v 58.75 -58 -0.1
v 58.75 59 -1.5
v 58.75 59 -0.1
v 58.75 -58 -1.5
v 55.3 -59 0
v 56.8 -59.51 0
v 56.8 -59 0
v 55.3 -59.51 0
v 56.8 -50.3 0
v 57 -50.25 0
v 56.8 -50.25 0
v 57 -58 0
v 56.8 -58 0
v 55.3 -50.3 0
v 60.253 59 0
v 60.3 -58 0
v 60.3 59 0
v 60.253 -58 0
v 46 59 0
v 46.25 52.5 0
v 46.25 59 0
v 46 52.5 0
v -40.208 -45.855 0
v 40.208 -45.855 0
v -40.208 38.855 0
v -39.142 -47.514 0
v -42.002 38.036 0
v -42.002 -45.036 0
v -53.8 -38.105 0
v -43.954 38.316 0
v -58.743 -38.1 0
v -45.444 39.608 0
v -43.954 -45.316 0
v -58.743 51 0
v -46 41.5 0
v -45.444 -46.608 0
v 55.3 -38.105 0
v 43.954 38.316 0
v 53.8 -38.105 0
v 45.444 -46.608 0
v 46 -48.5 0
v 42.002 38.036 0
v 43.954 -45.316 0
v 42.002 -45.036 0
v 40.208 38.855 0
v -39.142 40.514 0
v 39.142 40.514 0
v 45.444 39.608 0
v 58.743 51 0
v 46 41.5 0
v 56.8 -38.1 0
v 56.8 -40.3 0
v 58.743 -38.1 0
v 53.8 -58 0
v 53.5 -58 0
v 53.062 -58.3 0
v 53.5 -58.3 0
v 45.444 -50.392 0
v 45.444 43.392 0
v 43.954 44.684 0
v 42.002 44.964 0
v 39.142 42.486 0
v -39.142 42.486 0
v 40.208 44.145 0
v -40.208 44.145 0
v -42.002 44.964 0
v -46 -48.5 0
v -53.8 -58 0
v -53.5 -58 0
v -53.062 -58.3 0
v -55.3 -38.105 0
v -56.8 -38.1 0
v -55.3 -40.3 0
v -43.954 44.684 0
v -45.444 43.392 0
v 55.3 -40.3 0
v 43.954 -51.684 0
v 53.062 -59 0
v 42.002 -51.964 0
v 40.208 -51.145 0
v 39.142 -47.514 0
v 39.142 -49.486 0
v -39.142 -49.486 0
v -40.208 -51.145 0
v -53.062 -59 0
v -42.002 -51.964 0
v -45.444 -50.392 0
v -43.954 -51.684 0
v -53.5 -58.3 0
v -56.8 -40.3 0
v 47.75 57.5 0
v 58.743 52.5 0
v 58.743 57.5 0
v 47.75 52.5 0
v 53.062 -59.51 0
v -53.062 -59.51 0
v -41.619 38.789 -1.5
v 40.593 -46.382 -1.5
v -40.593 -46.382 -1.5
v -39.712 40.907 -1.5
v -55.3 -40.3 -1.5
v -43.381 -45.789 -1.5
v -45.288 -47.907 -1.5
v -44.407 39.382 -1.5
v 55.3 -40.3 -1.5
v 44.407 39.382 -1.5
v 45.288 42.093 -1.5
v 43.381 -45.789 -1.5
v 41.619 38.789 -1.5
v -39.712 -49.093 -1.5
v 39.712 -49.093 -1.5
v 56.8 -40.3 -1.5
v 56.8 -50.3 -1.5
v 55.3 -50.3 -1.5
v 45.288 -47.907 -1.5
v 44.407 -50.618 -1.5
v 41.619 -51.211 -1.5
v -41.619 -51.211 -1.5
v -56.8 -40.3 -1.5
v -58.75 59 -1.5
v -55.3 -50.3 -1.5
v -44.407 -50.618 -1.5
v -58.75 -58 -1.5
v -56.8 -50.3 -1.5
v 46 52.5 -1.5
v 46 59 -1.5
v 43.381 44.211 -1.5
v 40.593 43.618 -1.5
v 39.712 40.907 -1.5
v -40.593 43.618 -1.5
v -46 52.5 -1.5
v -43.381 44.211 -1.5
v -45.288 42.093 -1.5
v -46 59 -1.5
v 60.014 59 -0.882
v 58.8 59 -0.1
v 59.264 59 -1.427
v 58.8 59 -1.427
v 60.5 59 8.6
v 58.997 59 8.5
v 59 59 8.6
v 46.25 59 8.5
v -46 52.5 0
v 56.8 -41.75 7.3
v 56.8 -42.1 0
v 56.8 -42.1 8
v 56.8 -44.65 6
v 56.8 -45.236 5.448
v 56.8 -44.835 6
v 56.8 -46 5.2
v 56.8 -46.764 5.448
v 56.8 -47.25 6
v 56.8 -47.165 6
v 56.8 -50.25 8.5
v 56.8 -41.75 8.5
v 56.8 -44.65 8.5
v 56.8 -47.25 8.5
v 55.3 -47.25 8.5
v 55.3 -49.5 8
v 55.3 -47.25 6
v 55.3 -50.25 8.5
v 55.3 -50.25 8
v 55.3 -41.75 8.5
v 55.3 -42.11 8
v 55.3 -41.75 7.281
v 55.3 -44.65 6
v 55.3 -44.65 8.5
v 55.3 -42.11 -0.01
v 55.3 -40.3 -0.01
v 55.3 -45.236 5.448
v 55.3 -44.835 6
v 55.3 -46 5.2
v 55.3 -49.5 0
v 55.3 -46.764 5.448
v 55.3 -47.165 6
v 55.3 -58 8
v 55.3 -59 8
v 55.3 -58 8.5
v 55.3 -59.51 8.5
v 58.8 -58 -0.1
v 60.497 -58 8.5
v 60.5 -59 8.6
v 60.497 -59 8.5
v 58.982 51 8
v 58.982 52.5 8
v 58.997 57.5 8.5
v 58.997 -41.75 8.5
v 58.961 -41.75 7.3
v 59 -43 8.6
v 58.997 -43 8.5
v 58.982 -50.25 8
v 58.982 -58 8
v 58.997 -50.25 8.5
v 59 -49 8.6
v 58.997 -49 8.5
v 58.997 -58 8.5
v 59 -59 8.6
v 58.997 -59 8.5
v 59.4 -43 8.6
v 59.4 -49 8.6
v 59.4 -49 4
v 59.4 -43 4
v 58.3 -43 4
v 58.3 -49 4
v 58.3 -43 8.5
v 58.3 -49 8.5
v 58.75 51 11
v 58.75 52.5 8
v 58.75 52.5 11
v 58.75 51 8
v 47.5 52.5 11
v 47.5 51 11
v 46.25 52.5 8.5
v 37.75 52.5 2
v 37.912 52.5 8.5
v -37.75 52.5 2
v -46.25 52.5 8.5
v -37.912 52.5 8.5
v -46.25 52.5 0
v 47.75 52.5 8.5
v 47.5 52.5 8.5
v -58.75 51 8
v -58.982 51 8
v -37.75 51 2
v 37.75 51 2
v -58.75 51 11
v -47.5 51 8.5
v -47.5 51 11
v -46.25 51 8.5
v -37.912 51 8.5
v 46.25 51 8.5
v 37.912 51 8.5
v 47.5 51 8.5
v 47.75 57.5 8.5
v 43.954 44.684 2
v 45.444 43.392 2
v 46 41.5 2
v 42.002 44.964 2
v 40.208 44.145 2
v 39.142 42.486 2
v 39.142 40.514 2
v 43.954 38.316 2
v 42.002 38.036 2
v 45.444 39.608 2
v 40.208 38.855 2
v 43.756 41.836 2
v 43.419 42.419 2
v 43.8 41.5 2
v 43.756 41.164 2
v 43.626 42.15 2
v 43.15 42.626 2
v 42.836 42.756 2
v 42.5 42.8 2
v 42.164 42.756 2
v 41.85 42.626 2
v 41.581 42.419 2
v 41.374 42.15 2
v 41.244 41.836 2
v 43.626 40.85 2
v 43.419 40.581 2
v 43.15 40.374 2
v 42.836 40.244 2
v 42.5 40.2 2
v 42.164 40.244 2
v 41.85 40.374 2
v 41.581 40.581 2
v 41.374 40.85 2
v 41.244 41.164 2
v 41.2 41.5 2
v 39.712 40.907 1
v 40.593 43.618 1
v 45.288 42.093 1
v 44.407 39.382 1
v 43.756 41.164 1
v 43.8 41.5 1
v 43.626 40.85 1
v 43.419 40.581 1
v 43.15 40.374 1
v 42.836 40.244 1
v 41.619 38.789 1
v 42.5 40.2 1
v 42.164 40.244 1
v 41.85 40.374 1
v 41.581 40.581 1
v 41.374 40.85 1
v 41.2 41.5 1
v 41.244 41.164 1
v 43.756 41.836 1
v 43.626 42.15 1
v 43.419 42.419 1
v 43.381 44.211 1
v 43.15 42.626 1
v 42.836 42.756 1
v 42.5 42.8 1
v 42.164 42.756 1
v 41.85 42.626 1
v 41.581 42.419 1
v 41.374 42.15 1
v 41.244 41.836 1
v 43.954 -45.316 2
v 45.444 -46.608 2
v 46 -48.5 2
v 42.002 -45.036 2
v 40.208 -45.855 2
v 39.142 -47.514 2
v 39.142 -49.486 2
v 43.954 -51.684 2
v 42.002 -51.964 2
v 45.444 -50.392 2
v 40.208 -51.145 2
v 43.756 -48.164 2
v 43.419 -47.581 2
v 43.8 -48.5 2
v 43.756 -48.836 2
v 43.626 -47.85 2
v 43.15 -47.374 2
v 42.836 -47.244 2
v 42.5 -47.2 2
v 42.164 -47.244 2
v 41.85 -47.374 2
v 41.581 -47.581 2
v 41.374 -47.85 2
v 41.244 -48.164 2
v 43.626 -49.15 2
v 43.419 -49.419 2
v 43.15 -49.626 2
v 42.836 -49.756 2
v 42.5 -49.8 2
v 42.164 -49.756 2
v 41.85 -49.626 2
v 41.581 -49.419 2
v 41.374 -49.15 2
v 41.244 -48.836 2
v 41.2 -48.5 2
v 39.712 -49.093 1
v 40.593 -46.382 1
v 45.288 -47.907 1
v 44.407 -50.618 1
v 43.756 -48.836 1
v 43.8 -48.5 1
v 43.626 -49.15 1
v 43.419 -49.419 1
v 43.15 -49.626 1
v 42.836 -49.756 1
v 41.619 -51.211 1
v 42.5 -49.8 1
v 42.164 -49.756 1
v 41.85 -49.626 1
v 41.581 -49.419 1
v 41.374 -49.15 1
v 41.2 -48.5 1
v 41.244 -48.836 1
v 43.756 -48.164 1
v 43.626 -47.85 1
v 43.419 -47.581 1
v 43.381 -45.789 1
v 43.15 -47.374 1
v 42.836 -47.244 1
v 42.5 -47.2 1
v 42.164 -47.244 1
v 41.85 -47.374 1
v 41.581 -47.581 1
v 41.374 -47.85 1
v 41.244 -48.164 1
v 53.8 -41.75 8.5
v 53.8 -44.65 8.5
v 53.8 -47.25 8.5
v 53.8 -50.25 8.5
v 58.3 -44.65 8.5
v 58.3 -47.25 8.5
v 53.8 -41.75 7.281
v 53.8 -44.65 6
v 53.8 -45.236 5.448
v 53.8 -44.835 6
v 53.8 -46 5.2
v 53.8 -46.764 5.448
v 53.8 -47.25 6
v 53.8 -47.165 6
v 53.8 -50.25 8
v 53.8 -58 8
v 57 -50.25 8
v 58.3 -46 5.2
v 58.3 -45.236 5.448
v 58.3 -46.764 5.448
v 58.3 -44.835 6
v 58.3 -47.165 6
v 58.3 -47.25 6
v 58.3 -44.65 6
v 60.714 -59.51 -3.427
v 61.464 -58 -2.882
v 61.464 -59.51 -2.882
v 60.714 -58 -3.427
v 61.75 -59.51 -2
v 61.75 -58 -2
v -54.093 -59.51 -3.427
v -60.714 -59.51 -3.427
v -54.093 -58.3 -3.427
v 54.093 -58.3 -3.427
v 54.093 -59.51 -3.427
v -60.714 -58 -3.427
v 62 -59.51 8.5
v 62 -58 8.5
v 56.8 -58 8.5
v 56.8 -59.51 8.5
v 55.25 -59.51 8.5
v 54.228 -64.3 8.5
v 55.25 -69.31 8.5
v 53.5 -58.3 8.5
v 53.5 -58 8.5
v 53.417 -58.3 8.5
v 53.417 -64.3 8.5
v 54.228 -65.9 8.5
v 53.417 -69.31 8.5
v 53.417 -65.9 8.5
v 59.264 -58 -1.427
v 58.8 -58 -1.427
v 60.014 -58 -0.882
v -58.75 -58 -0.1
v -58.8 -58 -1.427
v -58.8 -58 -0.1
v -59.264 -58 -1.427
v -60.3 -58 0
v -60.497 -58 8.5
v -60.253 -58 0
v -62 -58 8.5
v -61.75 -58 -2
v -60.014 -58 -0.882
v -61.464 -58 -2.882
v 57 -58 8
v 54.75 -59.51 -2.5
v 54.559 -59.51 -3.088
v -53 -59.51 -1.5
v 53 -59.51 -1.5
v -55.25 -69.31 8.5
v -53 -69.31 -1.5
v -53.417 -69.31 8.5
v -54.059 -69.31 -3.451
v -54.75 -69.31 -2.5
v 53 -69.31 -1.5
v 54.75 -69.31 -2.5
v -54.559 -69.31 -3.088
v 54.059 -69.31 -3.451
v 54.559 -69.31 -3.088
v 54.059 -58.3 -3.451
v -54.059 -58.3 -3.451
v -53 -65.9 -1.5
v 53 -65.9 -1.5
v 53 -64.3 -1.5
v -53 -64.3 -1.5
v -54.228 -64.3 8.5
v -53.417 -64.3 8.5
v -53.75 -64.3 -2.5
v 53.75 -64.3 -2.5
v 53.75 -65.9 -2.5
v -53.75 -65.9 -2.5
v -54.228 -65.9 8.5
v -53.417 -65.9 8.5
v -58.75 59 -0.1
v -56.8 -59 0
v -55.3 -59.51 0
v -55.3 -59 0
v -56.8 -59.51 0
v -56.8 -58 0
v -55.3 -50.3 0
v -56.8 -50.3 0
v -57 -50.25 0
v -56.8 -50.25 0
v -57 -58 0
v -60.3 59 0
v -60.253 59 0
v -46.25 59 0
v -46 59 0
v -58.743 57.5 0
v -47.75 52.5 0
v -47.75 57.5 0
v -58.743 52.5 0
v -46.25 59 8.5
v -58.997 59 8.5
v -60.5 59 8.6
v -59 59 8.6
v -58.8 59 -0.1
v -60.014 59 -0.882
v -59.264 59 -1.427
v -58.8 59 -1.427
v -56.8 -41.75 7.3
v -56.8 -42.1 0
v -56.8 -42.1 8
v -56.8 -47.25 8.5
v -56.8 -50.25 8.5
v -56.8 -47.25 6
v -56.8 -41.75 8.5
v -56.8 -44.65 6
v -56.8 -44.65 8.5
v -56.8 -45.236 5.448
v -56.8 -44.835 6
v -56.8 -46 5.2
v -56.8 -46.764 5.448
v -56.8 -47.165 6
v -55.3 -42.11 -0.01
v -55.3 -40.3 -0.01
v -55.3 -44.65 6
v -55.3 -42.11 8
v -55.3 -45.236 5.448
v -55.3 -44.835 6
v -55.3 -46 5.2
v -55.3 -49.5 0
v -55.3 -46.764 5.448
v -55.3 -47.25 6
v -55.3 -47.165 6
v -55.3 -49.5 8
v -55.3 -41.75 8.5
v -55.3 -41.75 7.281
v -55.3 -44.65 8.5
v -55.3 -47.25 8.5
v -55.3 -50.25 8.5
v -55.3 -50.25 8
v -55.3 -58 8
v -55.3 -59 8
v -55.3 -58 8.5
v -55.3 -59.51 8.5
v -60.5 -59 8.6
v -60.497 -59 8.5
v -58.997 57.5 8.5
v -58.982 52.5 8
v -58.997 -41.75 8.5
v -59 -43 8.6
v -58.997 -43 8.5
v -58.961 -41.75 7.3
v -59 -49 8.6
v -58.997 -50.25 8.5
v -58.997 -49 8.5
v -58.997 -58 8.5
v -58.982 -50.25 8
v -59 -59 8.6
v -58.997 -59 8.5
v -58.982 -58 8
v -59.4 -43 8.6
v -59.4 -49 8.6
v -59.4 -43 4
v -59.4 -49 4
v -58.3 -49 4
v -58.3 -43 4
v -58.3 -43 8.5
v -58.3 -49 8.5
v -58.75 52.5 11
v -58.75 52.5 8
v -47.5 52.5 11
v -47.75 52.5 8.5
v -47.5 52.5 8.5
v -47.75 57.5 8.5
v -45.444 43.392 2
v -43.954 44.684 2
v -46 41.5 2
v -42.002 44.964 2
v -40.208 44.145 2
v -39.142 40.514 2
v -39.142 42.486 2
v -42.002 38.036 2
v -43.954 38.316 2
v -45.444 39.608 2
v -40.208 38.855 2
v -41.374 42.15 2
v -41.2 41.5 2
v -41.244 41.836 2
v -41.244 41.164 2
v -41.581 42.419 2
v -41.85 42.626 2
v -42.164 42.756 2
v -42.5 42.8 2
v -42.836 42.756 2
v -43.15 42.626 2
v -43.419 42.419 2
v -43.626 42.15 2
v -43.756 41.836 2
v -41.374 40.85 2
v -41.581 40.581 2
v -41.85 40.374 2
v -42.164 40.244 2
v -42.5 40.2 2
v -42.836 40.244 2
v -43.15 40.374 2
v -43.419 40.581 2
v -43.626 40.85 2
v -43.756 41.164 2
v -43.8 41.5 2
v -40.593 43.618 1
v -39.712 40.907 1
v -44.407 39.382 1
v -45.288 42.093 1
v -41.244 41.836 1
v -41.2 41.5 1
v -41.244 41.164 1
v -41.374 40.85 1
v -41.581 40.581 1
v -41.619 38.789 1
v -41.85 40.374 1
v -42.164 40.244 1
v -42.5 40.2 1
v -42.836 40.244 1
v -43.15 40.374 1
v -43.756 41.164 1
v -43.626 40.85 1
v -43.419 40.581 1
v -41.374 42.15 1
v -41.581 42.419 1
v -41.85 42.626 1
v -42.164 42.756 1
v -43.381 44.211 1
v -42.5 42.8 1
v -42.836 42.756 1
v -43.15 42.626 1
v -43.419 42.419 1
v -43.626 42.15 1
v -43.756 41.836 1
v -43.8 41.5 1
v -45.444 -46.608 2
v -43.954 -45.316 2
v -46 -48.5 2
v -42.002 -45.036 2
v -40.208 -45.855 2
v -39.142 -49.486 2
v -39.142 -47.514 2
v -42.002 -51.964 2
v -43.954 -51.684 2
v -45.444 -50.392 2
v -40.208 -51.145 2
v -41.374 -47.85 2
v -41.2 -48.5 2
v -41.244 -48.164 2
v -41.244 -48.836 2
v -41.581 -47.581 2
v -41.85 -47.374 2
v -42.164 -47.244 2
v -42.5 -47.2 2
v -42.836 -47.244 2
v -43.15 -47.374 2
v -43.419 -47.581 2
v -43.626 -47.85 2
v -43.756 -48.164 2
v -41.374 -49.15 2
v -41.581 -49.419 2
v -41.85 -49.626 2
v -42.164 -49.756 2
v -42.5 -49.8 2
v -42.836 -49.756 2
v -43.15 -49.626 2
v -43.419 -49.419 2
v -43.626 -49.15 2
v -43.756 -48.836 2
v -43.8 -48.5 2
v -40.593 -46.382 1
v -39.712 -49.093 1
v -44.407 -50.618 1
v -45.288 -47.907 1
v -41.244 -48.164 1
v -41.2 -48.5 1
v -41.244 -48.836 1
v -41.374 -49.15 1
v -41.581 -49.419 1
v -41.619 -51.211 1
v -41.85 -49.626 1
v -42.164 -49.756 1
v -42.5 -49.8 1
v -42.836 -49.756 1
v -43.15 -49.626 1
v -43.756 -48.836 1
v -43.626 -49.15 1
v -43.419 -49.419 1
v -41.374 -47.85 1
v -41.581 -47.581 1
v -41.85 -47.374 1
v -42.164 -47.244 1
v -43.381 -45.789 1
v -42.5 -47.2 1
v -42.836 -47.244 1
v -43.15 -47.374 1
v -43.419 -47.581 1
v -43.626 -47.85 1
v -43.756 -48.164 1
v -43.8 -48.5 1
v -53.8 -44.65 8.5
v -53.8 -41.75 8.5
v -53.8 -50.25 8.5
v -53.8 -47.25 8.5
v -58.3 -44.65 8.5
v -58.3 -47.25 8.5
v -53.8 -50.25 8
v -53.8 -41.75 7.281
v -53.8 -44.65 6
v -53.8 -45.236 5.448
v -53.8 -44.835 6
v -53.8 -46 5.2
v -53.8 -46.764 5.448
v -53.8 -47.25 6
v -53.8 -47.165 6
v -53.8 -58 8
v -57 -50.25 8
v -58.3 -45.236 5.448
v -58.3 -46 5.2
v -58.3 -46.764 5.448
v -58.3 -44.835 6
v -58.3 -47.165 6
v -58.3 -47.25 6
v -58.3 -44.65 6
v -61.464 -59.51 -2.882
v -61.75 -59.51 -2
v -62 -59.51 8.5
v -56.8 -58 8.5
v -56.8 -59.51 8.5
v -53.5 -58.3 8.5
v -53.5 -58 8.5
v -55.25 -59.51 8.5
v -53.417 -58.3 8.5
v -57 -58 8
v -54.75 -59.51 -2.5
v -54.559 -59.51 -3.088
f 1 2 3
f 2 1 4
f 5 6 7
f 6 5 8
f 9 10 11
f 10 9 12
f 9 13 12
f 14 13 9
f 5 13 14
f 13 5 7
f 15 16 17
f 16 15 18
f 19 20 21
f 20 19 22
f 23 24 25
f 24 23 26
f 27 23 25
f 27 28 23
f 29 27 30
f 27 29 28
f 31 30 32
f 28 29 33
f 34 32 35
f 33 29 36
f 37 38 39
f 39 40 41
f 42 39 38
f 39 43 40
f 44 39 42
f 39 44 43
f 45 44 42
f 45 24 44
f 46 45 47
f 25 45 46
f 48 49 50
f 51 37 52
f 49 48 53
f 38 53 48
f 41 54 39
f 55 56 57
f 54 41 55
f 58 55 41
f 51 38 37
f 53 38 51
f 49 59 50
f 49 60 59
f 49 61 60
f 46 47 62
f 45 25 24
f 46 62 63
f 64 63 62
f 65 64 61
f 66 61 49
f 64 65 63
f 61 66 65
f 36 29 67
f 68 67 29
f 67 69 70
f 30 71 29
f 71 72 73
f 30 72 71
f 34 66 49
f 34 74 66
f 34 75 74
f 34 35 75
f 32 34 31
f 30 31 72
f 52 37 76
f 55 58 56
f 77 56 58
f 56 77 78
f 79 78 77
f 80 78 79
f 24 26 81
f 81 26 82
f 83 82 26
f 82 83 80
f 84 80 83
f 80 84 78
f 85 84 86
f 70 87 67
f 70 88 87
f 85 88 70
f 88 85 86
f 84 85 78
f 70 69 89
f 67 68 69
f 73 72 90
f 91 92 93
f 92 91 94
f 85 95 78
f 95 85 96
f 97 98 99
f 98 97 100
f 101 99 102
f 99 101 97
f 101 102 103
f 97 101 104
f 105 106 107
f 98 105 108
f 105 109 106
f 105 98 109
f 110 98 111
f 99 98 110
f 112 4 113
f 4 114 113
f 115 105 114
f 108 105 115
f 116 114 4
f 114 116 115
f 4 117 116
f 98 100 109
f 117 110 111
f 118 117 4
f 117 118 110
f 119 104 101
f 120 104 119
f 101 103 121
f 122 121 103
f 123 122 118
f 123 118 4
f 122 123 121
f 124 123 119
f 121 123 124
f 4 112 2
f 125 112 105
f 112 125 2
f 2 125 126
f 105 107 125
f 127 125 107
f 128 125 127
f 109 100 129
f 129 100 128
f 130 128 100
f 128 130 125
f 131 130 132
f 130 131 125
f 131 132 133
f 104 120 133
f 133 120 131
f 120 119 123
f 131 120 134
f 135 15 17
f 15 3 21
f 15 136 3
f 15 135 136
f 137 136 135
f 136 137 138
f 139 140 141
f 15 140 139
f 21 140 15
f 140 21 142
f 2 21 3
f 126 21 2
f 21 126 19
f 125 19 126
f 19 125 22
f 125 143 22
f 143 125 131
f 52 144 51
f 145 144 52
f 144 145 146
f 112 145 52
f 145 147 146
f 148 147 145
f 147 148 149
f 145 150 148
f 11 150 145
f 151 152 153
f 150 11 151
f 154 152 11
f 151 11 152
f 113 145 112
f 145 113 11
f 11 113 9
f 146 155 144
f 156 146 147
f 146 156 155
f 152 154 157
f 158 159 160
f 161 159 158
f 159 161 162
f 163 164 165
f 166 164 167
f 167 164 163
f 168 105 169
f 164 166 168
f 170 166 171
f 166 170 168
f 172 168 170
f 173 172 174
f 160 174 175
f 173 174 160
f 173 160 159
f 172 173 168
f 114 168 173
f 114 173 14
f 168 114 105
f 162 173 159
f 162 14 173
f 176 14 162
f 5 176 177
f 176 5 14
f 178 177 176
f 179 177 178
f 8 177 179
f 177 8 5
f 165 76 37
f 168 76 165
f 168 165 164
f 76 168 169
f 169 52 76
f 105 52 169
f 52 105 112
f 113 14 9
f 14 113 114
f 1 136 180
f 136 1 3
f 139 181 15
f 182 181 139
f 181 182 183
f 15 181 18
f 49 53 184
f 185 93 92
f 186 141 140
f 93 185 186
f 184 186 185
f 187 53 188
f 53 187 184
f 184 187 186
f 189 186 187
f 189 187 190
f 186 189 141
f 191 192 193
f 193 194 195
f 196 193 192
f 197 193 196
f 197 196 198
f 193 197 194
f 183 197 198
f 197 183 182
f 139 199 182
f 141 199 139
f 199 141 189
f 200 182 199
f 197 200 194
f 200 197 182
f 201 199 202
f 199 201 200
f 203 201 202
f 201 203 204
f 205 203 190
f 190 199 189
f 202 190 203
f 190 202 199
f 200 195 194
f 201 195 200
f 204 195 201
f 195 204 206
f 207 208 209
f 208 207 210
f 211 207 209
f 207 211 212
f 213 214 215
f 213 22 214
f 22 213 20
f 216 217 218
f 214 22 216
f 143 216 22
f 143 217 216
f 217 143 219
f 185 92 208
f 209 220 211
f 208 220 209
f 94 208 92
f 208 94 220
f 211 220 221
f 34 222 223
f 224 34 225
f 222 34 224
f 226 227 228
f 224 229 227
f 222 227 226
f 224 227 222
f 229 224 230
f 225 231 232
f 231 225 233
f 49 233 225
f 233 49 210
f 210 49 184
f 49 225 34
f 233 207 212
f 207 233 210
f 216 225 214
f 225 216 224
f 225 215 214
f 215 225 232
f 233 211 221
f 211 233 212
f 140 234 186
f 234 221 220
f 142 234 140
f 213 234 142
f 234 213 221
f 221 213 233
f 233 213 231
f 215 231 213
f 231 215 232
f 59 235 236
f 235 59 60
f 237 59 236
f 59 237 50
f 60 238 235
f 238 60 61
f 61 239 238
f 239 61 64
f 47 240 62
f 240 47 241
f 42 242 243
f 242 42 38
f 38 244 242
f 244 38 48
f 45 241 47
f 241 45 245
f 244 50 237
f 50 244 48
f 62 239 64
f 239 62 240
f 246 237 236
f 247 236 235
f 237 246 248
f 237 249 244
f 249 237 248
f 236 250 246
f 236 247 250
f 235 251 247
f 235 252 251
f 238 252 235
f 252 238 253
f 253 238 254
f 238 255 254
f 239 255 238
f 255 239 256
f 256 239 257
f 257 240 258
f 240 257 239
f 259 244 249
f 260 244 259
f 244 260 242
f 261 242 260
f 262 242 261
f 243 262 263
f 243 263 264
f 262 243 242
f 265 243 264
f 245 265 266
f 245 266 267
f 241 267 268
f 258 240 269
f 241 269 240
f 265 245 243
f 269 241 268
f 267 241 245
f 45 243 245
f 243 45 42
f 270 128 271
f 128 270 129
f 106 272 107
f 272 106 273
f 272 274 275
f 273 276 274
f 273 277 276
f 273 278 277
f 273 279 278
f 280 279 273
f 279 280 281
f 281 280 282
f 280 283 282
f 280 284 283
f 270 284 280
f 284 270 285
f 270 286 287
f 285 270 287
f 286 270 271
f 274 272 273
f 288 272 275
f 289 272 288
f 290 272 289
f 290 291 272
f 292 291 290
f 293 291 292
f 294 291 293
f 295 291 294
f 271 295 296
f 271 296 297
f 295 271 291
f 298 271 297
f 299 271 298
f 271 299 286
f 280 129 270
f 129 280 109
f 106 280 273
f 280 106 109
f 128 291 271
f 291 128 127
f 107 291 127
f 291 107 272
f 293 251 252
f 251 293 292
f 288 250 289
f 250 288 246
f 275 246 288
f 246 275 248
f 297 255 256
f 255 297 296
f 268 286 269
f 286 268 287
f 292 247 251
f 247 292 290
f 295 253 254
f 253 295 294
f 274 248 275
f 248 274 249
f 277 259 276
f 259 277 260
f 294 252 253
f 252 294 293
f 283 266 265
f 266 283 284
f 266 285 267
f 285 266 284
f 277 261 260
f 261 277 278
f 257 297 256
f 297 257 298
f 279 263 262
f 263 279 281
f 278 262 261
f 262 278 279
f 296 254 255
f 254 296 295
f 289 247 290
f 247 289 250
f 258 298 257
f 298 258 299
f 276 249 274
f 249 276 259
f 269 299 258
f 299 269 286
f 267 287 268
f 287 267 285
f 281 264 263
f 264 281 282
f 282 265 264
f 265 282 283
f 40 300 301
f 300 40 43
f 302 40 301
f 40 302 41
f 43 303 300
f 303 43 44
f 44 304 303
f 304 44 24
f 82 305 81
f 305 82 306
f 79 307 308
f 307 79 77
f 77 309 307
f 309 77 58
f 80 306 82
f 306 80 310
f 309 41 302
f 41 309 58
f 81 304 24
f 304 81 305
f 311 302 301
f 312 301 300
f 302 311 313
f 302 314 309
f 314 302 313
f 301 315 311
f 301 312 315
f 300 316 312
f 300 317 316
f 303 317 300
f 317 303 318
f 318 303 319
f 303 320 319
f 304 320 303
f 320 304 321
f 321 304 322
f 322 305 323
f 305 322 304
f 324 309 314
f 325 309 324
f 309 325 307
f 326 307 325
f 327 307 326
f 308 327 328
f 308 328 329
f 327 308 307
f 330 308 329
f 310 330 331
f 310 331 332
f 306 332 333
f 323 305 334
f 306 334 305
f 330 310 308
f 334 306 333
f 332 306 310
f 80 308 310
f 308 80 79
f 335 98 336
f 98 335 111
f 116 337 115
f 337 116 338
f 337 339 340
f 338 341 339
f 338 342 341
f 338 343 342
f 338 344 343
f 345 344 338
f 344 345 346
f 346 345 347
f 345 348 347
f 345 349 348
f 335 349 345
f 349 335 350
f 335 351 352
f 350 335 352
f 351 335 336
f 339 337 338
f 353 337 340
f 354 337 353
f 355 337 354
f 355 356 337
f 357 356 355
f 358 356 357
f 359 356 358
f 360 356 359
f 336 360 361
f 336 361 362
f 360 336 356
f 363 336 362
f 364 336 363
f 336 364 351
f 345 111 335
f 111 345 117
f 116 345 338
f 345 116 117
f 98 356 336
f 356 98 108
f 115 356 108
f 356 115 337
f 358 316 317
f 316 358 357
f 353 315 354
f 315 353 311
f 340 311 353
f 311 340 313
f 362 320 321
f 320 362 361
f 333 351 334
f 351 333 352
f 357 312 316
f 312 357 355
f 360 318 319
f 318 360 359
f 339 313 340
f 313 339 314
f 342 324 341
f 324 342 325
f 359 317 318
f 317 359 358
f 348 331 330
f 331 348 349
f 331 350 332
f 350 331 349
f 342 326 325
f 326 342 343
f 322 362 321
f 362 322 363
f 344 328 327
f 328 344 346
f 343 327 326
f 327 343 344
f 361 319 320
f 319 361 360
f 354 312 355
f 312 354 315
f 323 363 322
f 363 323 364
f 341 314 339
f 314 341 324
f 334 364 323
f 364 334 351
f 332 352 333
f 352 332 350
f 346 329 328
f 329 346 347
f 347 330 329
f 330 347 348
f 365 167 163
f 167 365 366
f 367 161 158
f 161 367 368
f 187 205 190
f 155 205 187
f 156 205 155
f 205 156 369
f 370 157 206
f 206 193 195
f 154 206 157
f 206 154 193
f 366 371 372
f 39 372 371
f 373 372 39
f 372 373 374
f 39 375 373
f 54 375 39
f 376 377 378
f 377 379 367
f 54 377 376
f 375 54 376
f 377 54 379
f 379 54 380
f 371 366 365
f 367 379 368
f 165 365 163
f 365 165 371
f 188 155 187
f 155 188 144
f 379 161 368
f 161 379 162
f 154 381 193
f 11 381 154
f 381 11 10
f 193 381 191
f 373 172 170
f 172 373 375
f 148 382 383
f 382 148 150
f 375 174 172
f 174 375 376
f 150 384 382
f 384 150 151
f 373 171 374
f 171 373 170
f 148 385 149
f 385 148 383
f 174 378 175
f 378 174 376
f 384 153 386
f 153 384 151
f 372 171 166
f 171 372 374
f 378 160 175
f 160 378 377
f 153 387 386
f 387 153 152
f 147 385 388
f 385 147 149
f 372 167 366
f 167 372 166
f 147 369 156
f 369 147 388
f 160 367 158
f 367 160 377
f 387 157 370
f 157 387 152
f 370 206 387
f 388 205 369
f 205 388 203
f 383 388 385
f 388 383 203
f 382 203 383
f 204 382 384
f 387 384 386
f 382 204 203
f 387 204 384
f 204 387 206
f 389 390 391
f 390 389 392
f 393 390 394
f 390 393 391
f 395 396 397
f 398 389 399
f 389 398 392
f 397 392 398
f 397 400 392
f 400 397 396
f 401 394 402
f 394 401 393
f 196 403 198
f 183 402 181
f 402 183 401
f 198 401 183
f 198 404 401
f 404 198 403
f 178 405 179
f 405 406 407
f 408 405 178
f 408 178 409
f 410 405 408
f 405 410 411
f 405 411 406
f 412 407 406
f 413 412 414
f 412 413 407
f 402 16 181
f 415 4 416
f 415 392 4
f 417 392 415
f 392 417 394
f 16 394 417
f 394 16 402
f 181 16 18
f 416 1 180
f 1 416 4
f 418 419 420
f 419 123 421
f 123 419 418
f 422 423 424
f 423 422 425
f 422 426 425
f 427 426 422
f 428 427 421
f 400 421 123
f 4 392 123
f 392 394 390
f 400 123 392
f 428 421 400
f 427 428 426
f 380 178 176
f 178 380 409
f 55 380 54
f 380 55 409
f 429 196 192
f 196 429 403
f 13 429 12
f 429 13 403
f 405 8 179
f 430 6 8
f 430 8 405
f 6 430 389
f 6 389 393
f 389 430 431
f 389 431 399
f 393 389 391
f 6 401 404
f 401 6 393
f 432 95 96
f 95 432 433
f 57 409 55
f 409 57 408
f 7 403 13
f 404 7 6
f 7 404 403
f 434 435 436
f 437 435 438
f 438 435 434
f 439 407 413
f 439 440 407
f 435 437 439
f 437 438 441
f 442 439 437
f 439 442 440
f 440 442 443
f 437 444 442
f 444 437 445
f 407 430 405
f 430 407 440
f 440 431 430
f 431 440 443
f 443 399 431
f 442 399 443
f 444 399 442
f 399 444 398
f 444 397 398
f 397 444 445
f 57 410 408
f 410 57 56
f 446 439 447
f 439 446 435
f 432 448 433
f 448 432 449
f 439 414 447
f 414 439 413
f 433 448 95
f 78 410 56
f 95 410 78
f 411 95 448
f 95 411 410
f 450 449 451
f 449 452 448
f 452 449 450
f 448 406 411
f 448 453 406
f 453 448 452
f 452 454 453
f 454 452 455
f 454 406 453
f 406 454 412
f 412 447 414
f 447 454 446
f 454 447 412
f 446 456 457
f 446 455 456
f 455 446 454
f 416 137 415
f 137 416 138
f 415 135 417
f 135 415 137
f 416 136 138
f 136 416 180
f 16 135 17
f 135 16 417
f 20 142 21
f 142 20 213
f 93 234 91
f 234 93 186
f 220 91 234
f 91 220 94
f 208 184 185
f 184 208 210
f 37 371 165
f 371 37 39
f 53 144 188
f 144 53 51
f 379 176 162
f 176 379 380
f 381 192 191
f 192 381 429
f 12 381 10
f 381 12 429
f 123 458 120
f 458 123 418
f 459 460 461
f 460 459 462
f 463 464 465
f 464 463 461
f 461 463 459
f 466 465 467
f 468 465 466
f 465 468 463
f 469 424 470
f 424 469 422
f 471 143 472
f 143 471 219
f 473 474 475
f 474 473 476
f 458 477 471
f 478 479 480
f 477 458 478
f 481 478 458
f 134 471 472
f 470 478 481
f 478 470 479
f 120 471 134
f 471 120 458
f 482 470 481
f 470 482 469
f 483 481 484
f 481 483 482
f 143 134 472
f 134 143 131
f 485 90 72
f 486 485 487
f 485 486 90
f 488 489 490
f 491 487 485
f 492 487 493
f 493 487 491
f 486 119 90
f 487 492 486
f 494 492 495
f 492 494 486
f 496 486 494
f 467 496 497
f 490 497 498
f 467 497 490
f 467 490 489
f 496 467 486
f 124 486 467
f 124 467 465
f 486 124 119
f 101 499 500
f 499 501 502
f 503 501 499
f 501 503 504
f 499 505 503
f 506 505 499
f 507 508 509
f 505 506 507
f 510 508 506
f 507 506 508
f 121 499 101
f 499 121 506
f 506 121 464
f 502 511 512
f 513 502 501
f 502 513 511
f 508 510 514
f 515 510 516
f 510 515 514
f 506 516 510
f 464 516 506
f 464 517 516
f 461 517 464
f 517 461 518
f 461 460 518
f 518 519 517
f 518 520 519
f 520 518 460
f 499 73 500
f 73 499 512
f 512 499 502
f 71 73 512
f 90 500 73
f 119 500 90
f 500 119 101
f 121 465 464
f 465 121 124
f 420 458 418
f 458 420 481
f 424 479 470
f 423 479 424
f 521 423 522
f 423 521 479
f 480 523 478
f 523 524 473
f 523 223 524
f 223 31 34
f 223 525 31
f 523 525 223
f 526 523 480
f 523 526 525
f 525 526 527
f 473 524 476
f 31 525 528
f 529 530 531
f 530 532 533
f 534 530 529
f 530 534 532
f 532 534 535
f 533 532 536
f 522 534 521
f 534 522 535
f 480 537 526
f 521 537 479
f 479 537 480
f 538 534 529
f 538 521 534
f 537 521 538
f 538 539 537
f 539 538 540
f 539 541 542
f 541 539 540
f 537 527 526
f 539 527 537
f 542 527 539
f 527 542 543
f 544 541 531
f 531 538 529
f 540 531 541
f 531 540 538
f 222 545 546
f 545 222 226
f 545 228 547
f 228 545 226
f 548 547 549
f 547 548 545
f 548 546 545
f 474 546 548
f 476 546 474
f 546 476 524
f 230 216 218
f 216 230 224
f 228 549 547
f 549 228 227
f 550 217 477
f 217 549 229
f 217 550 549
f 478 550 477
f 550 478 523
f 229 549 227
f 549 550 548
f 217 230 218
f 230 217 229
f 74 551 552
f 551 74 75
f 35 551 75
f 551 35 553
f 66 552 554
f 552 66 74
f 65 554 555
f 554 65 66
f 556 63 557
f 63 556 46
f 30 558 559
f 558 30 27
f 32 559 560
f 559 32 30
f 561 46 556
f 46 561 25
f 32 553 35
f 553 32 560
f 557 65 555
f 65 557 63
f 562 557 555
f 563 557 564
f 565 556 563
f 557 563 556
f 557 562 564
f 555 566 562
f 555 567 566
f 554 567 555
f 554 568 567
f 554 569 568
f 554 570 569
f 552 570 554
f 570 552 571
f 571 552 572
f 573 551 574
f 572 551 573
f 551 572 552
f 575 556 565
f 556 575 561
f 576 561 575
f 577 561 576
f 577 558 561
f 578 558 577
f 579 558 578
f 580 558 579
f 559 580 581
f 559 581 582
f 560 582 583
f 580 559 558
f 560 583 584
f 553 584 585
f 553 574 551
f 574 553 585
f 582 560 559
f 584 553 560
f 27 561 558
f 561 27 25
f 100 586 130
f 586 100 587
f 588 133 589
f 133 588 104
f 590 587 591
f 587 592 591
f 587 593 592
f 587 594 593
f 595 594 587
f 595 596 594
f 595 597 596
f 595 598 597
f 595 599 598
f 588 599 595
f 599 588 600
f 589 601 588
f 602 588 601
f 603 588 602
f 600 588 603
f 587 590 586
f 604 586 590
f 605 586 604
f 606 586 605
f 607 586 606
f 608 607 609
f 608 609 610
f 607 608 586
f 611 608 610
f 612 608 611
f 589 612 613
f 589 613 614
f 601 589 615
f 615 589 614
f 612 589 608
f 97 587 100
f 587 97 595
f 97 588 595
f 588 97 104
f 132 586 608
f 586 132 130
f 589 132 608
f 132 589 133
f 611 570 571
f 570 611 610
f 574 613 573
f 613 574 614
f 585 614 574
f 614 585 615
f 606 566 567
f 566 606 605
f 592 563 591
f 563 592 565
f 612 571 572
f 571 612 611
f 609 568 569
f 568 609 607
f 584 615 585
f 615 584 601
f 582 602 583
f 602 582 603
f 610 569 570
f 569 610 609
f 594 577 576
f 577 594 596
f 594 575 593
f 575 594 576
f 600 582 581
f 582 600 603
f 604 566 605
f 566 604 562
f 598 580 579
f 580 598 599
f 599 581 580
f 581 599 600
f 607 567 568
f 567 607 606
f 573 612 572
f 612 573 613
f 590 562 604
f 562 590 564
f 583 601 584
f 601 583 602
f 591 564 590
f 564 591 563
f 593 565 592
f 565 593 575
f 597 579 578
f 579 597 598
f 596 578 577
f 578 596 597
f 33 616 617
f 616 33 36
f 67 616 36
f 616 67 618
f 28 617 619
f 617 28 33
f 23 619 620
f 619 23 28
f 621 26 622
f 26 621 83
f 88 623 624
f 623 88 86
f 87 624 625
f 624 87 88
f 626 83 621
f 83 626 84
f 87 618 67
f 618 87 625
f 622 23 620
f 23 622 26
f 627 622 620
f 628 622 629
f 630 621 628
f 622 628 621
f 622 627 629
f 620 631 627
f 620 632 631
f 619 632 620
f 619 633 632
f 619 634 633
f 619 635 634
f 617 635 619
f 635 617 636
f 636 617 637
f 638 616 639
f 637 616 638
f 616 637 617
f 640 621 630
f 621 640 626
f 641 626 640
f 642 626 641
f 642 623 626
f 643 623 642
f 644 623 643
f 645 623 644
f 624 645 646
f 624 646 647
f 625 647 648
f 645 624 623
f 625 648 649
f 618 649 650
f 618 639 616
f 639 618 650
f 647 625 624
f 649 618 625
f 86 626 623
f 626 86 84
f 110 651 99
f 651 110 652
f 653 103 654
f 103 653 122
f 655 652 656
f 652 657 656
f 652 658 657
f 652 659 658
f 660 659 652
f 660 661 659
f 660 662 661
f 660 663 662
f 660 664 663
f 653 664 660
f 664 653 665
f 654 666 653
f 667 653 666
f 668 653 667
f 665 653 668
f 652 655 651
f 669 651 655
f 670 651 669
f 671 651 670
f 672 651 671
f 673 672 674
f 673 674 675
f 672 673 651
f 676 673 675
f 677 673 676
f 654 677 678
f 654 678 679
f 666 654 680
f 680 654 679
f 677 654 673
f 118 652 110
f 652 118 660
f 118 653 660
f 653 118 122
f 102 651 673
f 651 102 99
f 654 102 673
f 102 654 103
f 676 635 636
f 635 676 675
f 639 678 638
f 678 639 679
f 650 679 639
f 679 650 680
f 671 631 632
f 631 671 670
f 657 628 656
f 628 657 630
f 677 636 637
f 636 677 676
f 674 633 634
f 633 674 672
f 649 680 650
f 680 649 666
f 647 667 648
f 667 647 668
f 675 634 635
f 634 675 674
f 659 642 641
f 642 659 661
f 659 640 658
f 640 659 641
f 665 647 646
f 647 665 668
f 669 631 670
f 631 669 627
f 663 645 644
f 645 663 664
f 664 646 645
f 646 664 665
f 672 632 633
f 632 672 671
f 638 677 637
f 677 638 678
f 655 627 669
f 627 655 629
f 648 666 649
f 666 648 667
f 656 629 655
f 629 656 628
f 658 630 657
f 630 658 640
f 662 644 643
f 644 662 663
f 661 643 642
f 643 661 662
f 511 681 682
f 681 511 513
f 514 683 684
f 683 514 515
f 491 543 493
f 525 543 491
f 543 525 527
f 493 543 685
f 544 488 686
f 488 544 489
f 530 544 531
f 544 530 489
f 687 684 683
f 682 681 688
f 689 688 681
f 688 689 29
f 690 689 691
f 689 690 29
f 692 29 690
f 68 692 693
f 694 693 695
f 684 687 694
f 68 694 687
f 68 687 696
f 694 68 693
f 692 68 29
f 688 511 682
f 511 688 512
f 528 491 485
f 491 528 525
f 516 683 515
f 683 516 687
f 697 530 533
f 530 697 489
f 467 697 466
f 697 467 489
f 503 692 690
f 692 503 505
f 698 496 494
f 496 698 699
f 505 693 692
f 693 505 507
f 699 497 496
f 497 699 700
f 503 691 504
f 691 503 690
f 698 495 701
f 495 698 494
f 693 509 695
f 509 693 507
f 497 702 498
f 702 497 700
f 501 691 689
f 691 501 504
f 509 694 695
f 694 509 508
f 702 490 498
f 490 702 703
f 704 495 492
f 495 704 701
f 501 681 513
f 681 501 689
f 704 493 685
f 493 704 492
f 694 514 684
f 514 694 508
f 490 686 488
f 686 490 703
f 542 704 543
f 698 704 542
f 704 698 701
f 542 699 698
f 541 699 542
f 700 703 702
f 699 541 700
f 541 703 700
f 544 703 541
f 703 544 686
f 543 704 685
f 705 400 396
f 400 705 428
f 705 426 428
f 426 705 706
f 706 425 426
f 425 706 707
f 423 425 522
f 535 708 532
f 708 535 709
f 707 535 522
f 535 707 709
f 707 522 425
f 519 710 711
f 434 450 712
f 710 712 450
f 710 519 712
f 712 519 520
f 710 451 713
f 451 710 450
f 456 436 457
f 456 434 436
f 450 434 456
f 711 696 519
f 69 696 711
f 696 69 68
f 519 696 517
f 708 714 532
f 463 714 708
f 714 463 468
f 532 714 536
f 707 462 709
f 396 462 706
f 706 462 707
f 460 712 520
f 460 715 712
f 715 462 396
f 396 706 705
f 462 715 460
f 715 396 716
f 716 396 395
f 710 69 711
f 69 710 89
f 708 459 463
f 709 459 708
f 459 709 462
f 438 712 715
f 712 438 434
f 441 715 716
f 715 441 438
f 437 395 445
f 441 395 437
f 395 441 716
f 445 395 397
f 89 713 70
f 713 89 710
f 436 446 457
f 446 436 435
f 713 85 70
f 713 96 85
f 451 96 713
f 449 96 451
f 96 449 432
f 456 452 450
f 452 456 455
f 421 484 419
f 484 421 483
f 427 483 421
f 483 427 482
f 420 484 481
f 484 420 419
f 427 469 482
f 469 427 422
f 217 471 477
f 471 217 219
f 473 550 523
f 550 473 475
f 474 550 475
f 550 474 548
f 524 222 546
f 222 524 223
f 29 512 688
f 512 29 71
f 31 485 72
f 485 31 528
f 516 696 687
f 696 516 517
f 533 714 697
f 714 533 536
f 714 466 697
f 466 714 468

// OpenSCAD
module Unterteil()
{

module Mutternloch()
{
	difference()
	{
		// Huelle
		cylinder( h = 3.5, d = 7);

		// Sechskantloch
		translate([ 0, 0, -0.1])
			rotate([ 0, 0, 12])
			linear_extrude( height = 2.6)
			circle( d = 5.7, $fn = 6);

		// Durchbruch fuer Schraube
		translate([ 0, 0, -0.1]) cylinder( h = 3.7, d = 2.6, $fn = 24);
	}
}


// Erzeugt Viertelkreis in Z-Richtung
module Kante_rund( length = 1, radius = 1.5)
{
	linear_extrude(height = length)
	difference()
	{
		circle( r = radius, $fs=1);
		translate([ -radius, 0, 0]) square( 2 * radius, center=true);
		translate([ 0, -radius, 0]) square( 2 * radius, center=true);
	}
}


// Parallelogrammartig
module Seitenwand( length = 1)
{
	// nach hinten schieben
	translate( [ 0, length, 0])
	// hochkant drehen
	rotate( [ 90, 0, 0])
	// gross machen
	linear_extrude( height = length)
	polygon( points=[[ -.01, -.1], [ 1.5, -.1], [ 1.75, 8.6], [ 0.25, 8.6]], paths=[[ 0, 1, 2, 3]]);
}


module Front()
{
	module front_ohne_rundung()
	{
	rotate( [ 90, 0, 0])
		linear_extrude( height = 1.5)
		polygon( points=[[ -1, -0.5], [ 123.5/2-1.5, -0.5], [ 124/2-1.5, 10], [ -1, 10]], paths=[[ 0, 1, 2, 3]]);
	}

	minkowski()
	{
		front_ohne_rundung();
		// kleiner liegender Halb-Zylinder
		difference()
		{
			rotate([ 90, 0, 0]) cylinder( r=1.5, h=0.01, $fn=10);
			translate([ 0, 0, 2]) cube(4, center=true);
		}
	}
}


module haelfte()
{
	// rechte Haelfte

	// Lagerbock
	lager_x = 107.6/2;
	lager_y = -105;


	// Grundflaeche
	difference() {
		translate([ -1, -118, -1.5]) cube([ (119-1.5)/2+1, 118, 1.5]);

		// Aussparung Mutternlochmodul hinten
		translate([ 85/2, -17.5, -1.6]) cylinder( h = 3.6, d = 6);

		// Aussparung Mutternlochmodul vorn
		translate([ 85/2, -107.5, -1.6]) cylinder( h = 3.6, d = 6);

		// Aussparung hinten (unten)
		translate([ -1, -6.5, -1.6]) cube( [ 92/2+1, 7, 1.7]);	

		// der Laengsschlitz fuer Lagerbock
		translate([ lager_x, lager_y, 0])
		translate([ 1.5, -4.3, -3]) cube([ 1.5, 10, 12]);

	}


	// Abrundung
	translate([ (119-1.4)/2, -118, 0]) rotate([ -90, 0, 0]) Kante_rund( 118);

	// Seitenwand
	difference() {
		translate([ (119-1.5)/2, -118, 0]) Seitenwand( 118);

		// Aussparung fuer Nippel
		translate([ lager_x, lager_y, 0])
		translate([ 4.5, -3, 4]) cube([ 1.1, 6, 5.5]);
	}

	// Rueckwand aussen
	translate([ 92.5/2, -1.5, 0]) cube([ 13.8, 1.5, 8.5]);

	// Rueckwand, nach innen gehend
	translate([ 92.5/2, -8, 0]) cube([ 1.5, 8, 8.5]);
	
	difference() {
		// Rueckwand, innen
		// original
		//translate([ -1, -8, 0]) cube([ 49.75+1, 1.5, 10]);
		// breiter und hoeher
		translate([ -1, -8, 0]) cube([ 49.75+10, 1.5, 11]);

		// Lippe fuer Leiterplatte wegnehmen
		//translate([ -1, -9, 2]) cube([ 75.5/2+1, 3, 10]);

		translate([ 0, -6, 2])
		rotate([ 90, 0, 0]) 
		linear_extrude( height = 3) 
		polygon( points=[[ -1, 0], [ 75.5/2, 0], [ 76/2, 10], [ -1, 10]], paths=[[ 0, 1, 2, 3]]);
	
		// Nase stehenlassen
		translate([ -1, -9, 8.5]) cube([ 95/2+1, 3, 4]);
	}


    // Loecher
	// hinten
	translate([ 85/2, -17.5, -1.5]) Mutternloch();

	// vorn
	translate([ 85/2, -107.5, -1.5]) Mutternloch();


	// Lagerbock
	difference()
	{
		// Block
		translate([ lager_x, lager_y, 0])
		translate([ 0, -8.5/2, 0]) cube([5.5, 8.5, 8.5]);

		// Rundung weg
		translate([ lager_x, lager_y, 0])
		translate([ -.2, 0, 6.5]) rotate([ 0, 90, 0]) cylinder( d = 2.6, h = 5, $fn = 10);
		// und ueber der Rundung
		translate([ lager_x, lager_y, 0])
		translate([ -.2, -2.5/2, 6]) cube([ 5, 2.6, 3]);

		// der Hebelschlitz
		translate([ lager_x, lager_y, 0])
		translate([ 1.5, -4.3, -3]) cube([ 1.5, 10, 12]);

		// Aussparung fuer Nippel
		translate([ lager_x, lager_y, 0])
		translate([ 4.5, -3, 4]) cube([ 1, 6, 5.5]);
	}


	// Front, Teil 1
	difference()
	{
		translate([ 0, -117, -1.5]) Front();
		// Hauptausschnitt
		translate([ -3, -118.7, 0]) cube([ 107/2 + 3, 2, 10]);
		
		// Hebelschlitz
		translate([ lager_x + 1.5, lager_y - 14, 0]) cube([1.5 , 3, 10]);
	}

	// vorderster Rahmen
	translate([ 0, -128.3, -1.5-2])
	difference()
	{
		// Volumen/ Rahmen
		minkowski()
		{
			translate([ 0, 11, 0])
			rotate([ 90, 0, 0]) 
			linear_extrude( height = 11) 
			polygon( points=[[ -1, 0+1], [ 109.5/2-1, 0+1], [ 110.5/2-1, 12], [ -1, 12]], paths=[[ 0, 1, 2, 3]]);

			// kleiner liegender Halb-Zylinder
			difference()
			{
				rotate([ 90, 0, 0]) cylinder( r=1, h=0.01, $fn=10);
				translate([ 0, 0, 2]) cube(4, center=true);
			}
		}
		
		// grosser Ausbruch
		translate([ 0, 11.5, 2])
		rotate([ 90, 0, 0]) 
		linear_extrude( height = 12) 
		polygon( points=[[ -2, 0], [ 106/2, 0], [ 107/2, 12], [ -2, 12]], paths=[[ 0, 1, 2, 3]]);


		// Ausbruch Frontplatte
		translate([ 0, 5, 1]) 
		rotate([ 90, 0, 0]) 
		linear_extrude( height = 1.6) 
		polygon( points=[[ -2, 0], [ 107.5/2, 0], [ 108.5/2, 11.5], [ -2, 11.5]], paths=[[ 0, 1, 2, 3]]);
	}
	
	

	//
	// zusaetzliche
	// Stuetzstrukturen
	//

	// an der Rueckwand
	translate([ 95/2, -8, 0]) cube([ 12, 1.5, 8]);

	// am Lagerbock, innen
	translate([ lager_x + 1.5, lager_y + 3.9, 0])
	rotate([ 0, -90, 0])
	linear_extrude( height = 1.5)
	polygon( points=[[ -0.01, -0.01], [ -0.01, 4], [ 8, -0.01]], paths=[[ 0, 1, 2]]);


	// am Lagerbock, aussen
	translate([ lager_x + 5.2, lager_y + 3.9, 0])
	rotate([ 0, -90, 0])
	linear_extrude( height = 2.2)
	polygon( points=[[ 0, 0], [ 0, 4], [ 8, 0]], paths=[[ 0, 1, 2]]);

	// zw. Lager und Front, innen
	translate([ lager_x , lager_y - 13, 0])
	cube([1.5, 9.5, 8]);	

	// zw. Lager und Front, aussen
	translate([ lager_x + 3.2, lager_y - 13, 0])
	cube([2.2, 9.5, 8]);	


}


// und nun beide zusammen:
                   haelfte();
mirror([ 1, 0, 0]) haelfte();
}


// und hier wird eigentlich gemalt:
translate([ 0, 118/2, 0]) Unterteil();
